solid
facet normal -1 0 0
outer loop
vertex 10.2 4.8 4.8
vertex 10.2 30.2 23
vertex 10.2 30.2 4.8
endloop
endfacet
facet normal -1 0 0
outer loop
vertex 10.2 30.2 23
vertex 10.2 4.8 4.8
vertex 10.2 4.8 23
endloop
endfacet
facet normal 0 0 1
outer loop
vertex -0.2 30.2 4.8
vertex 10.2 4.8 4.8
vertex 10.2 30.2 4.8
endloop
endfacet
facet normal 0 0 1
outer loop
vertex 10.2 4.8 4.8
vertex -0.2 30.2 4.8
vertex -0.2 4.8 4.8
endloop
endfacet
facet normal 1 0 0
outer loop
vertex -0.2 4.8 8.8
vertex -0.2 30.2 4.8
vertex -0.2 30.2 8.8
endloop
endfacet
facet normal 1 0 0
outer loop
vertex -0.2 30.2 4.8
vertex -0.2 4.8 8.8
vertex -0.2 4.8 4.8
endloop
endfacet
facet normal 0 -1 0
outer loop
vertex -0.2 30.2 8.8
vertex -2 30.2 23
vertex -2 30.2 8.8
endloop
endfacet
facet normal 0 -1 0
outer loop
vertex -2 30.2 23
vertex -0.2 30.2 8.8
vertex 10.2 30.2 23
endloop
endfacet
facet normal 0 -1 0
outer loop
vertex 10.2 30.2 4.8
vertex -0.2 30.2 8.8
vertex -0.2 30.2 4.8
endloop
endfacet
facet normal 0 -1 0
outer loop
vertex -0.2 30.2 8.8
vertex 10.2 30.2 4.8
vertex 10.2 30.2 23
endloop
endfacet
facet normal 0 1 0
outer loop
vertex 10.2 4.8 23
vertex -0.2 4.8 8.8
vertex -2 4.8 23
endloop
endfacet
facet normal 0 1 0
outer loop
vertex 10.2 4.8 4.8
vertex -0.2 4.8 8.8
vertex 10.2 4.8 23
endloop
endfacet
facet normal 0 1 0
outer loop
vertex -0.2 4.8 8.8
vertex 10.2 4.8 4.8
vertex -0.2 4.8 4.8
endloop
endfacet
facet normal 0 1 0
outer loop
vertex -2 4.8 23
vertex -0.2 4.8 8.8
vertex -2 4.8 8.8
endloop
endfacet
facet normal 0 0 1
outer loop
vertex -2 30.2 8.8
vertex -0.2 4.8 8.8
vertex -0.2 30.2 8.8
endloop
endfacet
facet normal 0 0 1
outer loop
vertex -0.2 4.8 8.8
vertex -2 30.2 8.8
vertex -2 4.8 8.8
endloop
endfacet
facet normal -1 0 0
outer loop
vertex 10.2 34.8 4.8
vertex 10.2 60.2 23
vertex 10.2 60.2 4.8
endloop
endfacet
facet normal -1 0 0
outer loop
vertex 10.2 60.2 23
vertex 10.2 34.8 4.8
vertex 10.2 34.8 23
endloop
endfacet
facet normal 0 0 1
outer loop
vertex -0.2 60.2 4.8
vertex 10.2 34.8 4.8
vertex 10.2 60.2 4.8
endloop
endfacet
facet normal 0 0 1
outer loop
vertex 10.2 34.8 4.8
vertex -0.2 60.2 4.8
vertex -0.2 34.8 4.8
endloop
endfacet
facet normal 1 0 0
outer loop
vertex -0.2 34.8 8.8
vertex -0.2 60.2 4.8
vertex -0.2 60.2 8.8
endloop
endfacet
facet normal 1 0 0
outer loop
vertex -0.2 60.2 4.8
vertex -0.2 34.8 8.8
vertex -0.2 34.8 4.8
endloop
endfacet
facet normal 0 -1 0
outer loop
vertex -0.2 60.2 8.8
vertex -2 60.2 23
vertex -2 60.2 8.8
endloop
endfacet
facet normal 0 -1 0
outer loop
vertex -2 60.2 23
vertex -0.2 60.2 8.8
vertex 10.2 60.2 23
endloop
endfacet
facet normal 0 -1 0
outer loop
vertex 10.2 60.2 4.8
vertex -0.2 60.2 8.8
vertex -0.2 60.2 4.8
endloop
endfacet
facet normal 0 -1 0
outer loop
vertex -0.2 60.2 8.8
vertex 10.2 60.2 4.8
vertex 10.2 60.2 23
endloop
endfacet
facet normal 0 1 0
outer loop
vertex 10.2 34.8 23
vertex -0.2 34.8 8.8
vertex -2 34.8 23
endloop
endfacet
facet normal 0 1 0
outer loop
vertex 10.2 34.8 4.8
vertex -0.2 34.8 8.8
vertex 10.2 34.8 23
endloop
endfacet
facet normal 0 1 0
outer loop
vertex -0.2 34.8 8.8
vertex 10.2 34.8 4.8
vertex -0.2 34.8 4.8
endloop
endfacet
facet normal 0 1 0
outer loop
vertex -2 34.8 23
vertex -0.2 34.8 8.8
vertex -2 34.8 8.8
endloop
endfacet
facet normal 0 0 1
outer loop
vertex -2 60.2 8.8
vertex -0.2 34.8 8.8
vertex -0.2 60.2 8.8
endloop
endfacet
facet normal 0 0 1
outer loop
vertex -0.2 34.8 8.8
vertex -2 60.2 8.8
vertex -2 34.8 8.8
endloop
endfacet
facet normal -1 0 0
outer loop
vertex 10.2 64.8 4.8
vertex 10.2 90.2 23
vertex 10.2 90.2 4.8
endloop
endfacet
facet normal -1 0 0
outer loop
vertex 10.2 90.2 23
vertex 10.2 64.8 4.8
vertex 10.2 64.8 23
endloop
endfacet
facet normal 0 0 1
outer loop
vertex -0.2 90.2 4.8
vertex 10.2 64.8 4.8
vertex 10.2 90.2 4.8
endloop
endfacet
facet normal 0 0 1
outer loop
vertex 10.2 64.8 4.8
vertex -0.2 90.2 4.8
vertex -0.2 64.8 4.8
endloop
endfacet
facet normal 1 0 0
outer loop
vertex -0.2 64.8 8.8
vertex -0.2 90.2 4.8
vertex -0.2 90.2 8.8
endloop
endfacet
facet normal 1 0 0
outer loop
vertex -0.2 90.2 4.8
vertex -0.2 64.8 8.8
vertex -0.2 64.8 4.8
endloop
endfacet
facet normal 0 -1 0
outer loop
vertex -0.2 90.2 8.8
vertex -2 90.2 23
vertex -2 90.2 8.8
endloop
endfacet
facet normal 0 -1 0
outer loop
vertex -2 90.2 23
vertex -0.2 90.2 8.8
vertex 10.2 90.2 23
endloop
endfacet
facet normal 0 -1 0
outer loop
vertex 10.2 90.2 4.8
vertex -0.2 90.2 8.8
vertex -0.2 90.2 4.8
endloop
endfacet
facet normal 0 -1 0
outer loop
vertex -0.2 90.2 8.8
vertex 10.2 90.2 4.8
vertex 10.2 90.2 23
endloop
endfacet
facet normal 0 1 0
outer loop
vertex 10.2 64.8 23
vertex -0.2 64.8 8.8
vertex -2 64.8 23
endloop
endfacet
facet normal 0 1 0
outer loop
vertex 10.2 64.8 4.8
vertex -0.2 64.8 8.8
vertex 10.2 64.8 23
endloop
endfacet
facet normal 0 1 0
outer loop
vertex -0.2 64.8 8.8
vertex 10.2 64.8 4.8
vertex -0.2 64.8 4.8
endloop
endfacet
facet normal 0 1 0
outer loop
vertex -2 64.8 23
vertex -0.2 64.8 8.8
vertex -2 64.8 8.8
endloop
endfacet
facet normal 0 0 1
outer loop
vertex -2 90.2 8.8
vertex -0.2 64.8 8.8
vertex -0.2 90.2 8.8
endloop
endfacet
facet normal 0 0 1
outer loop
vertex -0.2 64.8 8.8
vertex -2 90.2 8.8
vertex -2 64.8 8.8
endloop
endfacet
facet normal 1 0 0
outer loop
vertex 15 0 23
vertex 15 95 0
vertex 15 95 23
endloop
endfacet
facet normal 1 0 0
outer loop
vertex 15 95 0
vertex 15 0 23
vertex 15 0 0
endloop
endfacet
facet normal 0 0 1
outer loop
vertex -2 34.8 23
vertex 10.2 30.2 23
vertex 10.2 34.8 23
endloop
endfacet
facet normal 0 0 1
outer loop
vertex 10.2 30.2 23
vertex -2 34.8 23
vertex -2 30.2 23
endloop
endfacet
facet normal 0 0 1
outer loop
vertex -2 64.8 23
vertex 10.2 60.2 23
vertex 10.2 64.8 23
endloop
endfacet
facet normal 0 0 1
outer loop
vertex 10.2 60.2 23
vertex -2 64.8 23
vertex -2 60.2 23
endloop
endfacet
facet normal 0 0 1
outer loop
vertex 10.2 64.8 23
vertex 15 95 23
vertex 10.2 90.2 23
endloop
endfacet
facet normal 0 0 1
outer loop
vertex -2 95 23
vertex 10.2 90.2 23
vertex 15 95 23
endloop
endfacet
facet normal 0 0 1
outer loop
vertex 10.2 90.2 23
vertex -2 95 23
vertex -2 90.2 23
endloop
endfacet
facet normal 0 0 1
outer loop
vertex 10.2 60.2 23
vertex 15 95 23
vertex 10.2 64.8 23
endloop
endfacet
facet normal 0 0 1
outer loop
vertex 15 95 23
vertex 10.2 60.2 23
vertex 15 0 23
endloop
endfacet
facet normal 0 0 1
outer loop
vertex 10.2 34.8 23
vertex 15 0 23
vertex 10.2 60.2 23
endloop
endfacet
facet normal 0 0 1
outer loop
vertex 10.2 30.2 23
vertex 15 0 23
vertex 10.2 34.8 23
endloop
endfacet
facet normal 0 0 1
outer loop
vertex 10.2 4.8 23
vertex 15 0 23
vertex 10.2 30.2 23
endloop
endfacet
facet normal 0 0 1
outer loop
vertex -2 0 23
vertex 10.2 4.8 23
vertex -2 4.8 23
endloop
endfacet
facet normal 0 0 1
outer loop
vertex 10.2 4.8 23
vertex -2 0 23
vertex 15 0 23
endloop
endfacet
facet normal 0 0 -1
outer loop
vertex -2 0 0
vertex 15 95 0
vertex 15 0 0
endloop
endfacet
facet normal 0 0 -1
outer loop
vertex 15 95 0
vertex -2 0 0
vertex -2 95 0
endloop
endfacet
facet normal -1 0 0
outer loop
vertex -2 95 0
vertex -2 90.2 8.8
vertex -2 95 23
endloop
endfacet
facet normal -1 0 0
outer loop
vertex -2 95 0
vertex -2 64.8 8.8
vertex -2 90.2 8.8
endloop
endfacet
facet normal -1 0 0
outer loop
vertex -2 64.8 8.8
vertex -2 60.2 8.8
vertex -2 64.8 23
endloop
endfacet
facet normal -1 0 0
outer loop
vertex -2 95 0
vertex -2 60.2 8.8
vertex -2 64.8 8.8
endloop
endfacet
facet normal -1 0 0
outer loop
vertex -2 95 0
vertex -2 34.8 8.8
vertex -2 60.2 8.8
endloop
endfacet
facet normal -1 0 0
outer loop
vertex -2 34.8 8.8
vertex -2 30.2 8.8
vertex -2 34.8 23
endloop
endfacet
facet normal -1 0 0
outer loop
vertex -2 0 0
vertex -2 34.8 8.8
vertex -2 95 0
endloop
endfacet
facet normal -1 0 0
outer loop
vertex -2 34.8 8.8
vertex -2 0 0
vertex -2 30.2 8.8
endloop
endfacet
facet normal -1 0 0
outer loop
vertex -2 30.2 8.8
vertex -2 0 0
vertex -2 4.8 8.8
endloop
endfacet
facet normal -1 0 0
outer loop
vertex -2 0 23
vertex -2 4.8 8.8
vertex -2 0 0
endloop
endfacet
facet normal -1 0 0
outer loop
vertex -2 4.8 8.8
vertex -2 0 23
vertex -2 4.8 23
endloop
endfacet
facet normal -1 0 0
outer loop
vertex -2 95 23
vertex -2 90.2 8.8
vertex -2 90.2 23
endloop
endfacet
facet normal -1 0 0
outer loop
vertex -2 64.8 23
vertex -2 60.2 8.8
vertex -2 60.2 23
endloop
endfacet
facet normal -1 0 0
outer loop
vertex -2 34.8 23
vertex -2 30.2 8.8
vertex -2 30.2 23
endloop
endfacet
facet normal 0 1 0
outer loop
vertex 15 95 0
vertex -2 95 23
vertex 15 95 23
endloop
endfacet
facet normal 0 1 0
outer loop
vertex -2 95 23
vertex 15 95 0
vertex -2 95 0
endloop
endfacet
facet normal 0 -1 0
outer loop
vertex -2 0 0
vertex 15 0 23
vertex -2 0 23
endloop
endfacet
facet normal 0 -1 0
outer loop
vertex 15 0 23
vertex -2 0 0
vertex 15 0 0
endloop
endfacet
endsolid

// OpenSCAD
sk_sz=25;
sk_h1=18;
sk_h2=17;
sk_m=10;
tures = 0.2;

fv=5;

t_sz = 4 * fv + 3 * sk_sz;
t_m = fv + sk_m;
t_h = fv + sk_h1;

sorkapcsok();
//shelly1();
//sorkapocs();

module sorkapcsok(){
    difference(){
        translate([-2,0,0])cube([t_m+2, t_sz, t_h]);
        for(i = [0,1,2]){
            echo(fv+i*(fv+sk_sz));
            translate([0, fv+i*(fv+sk_sz),fv])sorkapocs_befoglalo();
            translate([-4, fv+i*(fv+sk_sz),fv+4])sorkapocs_befoglalo();
        }
    }
}

module sorkapocs(){
    translate([-tures,sk_sz+tures,-tures])rotate([90,0,0])
        linear_extrude(height=sk_sz+2*tures)polygon([[0,0],
                                                     [sk_m+2*tures,0],
                                                     [sk_m+2*tures, sk_h1+2*tures],
                                                     [0, sk_h2+2*tures],
                                                     [0,0]]);
}

module sorkapocs_befoglalo(){
    translate([-tures, -tures, -tures])cube([sk_m+2*tures, sk_sz+2*tures, sk_h1+2*tures]);
}

module shelly1(){
    import("Shelly_1___1PM_-_2_5___EM_-_RGBW2___Dimmer1_2___1L_-_i3_-_Wandhalterung_Wallmount_4842901/SHWH_1-1PM_V2.STL");
}
